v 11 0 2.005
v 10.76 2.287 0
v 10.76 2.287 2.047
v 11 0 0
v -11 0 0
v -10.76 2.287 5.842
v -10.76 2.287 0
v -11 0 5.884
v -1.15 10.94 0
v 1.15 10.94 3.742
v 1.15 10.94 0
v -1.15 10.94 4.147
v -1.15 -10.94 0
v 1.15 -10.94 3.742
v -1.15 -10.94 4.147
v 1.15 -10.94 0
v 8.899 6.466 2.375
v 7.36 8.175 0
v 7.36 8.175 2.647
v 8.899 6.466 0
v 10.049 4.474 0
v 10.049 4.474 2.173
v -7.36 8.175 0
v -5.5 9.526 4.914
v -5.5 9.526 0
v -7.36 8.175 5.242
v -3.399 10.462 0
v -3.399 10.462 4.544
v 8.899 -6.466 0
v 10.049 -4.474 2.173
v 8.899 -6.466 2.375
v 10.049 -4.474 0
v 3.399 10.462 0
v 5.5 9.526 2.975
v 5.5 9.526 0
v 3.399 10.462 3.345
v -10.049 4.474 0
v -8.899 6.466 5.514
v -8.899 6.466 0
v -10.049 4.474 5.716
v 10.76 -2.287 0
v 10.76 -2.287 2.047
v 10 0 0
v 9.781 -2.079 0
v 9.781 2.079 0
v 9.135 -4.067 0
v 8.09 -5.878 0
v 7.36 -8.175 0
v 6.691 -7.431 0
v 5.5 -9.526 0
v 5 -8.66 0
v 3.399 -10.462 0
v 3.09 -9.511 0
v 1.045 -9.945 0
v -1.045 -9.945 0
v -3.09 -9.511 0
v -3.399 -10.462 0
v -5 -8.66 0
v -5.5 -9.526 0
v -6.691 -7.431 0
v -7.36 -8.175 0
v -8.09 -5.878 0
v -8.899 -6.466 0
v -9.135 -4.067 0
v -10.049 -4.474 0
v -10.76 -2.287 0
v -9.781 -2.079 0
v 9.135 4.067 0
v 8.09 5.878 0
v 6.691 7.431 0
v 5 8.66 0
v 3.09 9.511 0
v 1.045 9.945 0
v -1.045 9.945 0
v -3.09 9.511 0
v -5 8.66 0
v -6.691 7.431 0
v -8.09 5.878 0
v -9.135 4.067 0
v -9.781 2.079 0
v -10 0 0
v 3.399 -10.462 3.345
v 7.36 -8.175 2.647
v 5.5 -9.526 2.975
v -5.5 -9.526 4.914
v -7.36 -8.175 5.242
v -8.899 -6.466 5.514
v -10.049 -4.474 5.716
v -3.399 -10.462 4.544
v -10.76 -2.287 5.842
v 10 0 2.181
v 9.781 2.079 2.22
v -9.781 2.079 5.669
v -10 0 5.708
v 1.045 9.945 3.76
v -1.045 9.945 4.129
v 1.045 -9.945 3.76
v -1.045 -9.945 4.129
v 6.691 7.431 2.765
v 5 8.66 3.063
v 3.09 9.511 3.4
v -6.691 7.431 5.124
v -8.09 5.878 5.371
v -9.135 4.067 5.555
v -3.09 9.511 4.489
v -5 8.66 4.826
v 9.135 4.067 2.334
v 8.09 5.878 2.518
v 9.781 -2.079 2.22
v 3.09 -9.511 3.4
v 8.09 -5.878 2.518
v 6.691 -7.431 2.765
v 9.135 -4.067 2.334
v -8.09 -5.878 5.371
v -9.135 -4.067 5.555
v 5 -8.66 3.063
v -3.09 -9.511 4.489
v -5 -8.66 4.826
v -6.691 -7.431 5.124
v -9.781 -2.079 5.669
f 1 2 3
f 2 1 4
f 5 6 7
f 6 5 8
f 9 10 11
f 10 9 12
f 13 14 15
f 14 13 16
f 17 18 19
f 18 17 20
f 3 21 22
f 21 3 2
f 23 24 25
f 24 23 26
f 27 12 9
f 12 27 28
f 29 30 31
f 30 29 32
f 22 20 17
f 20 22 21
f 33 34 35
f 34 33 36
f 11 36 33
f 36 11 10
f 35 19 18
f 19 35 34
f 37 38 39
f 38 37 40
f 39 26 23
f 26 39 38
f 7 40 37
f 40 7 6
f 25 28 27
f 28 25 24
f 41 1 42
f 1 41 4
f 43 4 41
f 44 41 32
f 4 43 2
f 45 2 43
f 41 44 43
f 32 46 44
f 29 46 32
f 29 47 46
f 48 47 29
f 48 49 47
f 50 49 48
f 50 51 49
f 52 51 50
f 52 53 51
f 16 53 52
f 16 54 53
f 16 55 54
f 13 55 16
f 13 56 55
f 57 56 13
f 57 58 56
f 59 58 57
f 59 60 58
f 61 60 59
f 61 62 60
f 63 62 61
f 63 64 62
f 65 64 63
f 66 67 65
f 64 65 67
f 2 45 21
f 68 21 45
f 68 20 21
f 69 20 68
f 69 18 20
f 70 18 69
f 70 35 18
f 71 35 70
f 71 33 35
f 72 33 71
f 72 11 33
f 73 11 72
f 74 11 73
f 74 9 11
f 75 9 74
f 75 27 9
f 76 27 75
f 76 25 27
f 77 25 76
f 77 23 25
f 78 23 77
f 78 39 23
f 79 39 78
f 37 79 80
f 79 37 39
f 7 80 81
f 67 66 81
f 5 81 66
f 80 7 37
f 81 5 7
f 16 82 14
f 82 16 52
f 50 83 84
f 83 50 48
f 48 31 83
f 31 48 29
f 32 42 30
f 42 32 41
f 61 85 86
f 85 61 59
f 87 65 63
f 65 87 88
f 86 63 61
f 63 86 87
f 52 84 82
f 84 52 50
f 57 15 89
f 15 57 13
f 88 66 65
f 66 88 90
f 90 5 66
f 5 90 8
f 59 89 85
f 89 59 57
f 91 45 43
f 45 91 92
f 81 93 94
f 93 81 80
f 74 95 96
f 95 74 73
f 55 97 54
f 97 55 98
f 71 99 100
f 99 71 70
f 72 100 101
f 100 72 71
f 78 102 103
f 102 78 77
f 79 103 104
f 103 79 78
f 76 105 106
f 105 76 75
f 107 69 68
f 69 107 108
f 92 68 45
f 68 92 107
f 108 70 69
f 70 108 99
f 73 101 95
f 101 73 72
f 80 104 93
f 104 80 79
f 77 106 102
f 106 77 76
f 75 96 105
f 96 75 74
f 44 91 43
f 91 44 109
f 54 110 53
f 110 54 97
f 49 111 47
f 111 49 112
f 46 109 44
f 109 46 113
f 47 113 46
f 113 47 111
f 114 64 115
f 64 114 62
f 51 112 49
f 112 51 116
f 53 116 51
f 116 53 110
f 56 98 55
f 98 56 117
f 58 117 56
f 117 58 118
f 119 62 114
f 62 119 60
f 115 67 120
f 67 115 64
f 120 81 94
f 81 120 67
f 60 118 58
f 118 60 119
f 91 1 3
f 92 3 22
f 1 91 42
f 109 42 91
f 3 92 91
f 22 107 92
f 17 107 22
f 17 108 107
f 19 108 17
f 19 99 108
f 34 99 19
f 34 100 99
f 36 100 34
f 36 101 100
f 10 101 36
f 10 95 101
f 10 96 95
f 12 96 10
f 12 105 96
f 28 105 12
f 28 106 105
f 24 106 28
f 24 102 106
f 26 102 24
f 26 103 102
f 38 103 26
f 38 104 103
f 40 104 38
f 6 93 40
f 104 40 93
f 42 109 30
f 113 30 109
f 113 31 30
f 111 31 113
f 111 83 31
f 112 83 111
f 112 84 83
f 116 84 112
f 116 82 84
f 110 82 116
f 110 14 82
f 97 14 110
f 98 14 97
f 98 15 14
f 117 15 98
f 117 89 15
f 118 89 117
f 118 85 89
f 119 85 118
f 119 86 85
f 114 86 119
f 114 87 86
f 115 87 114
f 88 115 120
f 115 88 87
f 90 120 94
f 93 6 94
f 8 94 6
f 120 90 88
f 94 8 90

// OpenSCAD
diam=22;
height=8;
rim=1;
tilt=10;

difference()
{
    translate([0, 0, 0])
      difference() {
        cylinder(h = height, r = diam/2);
        translate([0, 0, -1])
            cylinder(h = height+height, 
                r = (diam/2)-rim);
      }
  
    translate([-(diam+rim), -(diam+rim), height])
      {
        rotate([0, tilt, 0])
        cube([diam+diam,
             diam+diam,
             height]);
      }
  }
